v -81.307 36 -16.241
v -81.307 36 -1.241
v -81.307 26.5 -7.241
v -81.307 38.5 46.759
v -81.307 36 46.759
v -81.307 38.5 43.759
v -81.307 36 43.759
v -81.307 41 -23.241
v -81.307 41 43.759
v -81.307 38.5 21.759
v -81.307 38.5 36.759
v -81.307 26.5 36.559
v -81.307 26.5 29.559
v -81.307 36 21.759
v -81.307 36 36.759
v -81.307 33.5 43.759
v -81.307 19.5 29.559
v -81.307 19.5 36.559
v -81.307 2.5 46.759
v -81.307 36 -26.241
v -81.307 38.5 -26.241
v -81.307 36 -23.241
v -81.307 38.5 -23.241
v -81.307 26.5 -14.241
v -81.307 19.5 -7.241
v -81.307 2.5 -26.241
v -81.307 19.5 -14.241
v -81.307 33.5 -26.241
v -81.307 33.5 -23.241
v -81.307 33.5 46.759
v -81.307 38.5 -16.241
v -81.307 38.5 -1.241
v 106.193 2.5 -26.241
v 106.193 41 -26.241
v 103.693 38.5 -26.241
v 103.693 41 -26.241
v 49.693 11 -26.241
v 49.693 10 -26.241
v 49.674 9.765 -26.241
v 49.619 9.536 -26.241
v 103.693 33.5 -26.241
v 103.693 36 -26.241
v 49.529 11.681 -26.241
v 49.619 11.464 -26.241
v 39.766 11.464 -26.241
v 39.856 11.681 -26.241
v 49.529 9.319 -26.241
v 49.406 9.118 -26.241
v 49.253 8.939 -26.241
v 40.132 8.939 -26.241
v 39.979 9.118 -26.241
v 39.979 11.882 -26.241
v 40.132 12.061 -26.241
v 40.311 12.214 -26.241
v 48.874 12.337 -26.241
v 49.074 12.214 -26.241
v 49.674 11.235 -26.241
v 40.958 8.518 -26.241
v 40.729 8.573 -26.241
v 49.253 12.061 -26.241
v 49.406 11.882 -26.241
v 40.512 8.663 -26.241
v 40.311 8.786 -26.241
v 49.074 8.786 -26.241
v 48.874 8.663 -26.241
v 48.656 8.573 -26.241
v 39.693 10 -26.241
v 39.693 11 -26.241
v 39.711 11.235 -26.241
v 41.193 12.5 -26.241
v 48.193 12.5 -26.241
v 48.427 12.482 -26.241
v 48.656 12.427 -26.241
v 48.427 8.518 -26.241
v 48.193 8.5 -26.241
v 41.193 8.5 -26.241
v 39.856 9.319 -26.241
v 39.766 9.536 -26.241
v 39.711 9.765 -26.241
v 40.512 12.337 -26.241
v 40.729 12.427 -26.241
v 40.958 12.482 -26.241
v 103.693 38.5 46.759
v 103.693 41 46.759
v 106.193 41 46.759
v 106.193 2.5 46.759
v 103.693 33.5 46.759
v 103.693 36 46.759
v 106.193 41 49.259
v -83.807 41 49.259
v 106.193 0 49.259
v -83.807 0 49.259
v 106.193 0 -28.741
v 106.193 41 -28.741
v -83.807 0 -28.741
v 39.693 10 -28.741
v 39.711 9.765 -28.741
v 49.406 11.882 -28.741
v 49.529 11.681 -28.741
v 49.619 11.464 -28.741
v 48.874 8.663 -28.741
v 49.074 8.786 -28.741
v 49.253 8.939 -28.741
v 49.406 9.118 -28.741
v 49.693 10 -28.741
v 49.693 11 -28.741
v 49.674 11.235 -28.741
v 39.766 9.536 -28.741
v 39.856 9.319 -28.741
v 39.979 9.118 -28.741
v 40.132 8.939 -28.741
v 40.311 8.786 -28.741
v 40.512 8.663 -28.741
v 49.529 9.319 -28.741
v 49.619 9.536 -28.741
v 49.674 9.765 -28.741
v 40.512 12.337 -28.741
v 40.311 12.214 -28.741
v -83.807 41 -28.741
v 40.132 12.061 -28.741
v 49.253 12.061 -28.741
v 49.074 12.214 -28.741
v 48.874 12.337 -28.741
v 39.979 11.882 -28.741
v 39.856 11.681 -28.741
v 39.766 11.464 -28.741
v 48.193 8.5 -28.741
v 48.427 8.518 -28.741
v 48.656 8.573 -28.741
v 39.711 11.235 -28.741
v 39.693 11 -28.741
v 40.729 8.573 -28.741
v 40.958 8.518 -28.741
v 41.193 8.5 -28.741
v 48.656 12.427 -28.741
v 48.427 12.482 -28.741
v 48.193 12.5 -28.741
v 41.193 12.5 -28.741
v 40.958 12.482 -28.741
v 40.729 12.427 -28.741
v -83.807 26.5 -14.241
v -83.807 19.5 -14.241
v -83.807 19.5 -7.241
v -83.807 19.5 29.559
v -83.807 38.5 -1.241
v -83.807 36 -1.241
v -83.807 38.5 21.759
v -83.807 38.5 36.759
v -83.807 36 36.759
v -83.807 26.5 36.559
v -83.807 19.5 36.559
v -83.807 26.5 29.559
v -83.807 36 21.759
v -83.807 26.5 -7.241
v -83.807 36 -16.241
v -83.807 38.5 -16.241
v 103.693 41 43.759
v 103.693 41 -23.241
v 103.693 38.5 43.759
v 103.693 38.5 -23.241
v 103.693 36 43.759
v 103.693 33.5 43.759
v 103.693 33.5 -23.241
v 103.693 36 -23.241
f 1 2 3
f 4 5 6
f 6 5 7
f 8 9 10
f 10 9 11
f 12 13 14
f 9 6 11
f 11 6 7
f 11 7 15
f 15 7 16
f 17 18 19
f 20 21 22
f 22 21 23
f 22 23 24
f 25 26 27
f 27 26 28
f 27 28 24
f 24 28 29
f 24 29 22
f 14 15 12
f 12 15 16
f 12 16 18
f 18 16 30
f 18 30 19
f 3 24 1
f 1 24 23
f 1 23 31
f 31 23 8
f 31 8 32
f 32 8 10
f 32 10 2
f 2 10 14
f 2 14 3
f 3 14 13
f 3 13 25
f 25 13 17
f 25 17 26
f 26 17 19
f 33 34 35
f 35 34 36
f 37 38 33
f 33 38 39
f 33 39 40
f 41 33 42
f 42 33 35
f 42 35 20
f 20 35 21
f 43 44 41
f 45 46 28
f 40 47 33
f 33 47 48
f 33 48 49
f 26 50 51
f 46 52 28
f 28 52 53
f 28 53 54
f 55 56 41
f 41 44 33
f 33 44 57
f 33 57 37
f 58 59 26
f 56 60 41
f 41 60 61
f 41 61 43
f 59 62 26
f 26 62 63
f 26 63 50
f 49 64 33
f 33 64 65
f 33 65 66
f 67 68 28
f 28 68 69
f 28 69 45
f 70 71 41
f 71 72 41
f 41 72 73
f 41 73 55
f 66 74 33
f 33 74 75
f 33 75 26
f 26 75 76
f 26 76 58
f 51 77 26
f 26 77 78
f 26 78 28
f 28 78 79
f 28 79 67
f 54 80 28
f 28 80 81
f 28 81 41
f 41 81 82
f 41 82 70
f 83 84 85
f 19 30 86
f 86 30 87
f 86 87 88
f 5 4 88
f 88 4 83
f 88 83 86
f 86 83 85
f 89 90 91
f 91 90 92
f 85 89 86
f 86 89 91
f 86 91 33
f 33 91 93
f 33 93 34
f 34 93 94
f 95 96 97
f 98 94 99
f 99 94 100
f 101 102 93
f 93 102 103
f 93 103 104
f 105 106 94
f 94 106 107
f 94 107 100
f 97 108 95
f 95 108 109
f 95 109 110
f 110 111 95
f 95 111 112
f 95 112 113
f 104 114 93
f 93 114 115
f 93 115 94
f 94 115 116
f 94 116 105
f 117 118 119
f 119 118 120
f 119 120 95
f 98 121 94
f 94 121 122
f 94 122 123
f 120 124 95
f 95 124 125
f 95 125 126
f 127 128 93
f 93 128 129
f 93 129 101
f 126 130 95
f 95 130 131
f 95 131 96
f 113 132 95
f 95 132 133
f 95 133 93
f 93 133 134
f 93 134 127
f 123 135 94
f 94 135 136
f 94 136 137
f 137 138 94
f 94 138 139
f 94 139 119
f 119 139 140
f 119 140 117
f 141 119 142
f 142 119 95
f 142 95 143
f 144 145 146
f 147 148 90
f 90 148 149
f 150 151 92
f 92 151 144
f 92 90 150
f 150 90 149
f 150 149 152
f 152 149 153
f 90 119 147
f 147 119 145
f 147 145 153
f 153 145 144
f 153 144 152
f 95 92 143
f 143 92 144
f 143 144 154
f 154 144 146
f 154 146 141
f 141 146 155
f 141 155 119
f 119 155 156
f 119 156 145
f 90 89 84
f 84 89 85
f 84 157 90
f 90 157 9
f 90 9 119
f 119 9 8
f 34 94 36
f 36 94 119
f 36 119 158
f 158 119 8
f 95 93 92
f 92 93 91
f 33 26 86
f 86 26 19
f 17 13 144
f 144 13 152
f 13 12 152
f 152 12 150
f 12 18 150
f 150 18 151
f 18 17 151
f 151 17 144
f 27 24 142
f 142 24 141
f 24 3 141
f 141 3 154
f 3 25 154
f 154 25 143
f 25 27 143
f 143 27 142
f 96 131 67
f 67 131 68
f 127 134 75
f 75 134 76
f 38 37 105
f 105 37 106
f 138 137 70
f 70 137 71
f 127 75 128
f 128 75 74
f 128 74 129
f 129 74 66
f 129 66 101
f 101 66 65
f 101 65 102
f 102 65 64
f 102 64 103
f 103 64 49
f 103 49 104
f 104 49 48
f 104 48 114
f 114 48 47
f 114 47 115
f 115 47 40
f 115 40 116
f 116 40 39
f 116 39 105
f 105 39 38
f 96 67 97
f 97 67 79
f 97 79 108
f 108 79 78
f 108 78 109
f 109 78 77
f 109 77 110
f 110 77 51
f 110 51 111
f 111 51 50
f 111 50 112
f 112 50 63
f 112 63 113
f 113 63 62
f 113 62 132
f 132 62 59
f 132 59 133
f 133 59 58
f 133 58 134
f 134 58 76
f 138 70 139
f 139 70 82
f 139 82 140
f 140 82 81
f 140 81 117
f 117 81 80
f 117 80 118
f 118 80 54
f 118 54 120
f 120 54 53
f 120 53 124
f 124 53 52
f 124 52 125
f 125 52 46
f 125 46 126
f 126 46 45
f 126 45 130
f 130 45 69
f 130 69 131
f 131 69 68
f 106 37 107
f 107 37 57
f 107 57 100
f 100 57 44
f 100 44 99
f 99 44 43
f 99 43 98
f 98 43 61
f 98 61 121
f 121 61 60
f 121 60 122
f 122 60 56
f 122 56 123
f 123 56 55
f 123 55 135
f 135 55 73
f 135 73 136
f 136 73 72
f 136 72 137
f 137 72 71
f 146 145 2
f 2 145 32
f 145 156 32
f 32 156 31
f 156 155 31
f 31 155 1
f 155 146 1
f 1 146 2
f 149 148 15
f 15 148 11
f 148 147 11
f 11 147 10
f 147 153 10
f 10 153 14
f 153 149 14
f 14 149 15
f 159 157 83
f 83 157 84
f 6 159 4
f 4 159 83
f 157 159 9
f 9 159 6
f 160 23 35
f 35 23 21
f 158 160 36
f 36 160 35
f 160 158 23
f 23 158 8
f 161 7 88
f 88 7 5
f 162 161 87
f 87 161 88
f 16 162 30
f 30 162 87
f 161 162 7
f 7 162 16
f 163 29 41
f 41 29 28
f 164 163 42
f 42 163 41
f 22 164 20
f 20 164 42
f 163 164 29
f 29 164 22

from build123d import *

# Parameters (mm, degrees)
SKETCH_1_W          = 190
SKETCH_1_H          = 78
EXTRUDE_1_DEPTH     = 41
SKETCH_2_W          = 185
SKETCH_2_H          = 73
CUT_EXTRUDE_1_DEPTH = 38.5
SKETCH_3_W          = 2.5
SKETCH_3_H          = 73
CUT_EXTRUDE_2_DEPTH = 38.5
SKETCH_4_W          = 7
SKETCH_4_H          = 7
CUT_EXTRUDE_4_DEPTH = 2.5
SKETCH_5_W          = 10
SKETCH_5_H          = 4
CUT_EXTRUDE_5_DEPTH = 2.5
FILLET_1_R          = 1.5
SKETCH_9_W          = 15
SKETCH_9_H          = 2.5
CUT_EXTRUDE_8_DEPTH = 2.5
SKETCH_10_W         = 185
SKETCH_10_H         = 2.5
EXTRUDE_2_DEPTH     = 3
SKETCH_11_W         = 185
SKETCH_11_H         = 2.5
EXTRUDE_3_DEPTH     = 3
SKETCH_12_W         = 185
SKETCH_12_H         = 2.5
EXTRUDE_4_DEPTH     = 3
SKETCH_13_W         = 185
SKETCH_13_H         = 2.5
EXTRUDE_5_DEPTH     = 3


with BuildPart() as part:
    # 草图1 → 凸台-拉伸1 (new body)
    with BuildSketch(Plane(origin=(0, 0, 0), x_dir=(1, 0, 0), z_dir=(0, 1, 0))):
        with Locations((11.192771084, -10.259036145)):
            Rectangle(SKETCH_1_W, SKETCH_1_H)
    extrude(amount=EXTRUDE_1_DEPTH)

    # 草图2 → 切除-拉伸1 (cut)
    with BuildSketch(Plane(origin=(0, 41, 0), x_dir=(1, 0, 0), z_dir=(0, 1, 0))):
        with Locations((11.192771084, -10.259036145)):
            Rectangle(SKETCH_2_W, SKETCH_2_H)
    extrude(amount=-CUT_EXTRUDE_1_DEPTH, mode=Mode.SUBTRACT)

    # 草图3 → 切除-拉伸2 (cut)
    with BuildSketch(Plane(origin=(0, 41, 0), x_dir=(1, 0, 0), z_dir=(0, 1, 0))):
        with Locations((104.942771084, -10.259036145)):
            Rectangle(SKETCH_3_W, SKETCH_3_H)
    extrude(amount=-CUT_EXTRUDE_2_DEPTH, mode=Mode.SUBTRACT)

    # 草图4 → 切除-拉伸4 (cut)
    with BuildSketch(Plane.ZY.offset(83.807228916)):
        with Locations((-10.740963855, 23)):
            Rectangle(SKETCH_4_W, SKETCH_4_H)
        with Locations((33.059036145, 23)):
            Rectangle(SKETCH_4_W, SKETCH_4_H)
    extrude(amount=-CUT_EXTRUDE_4_DEPTH, mode=Mode.SUBTRACT)

    # 草图5 → 切除-拉伸5 (cut)
    with BuildSketch(Plane(origin=(0, 0, -28.740963855), x_dir=(-1, 0, 0), z_dir=(0, 0, -1))):
        with Locations((-44.692771084, 10.5)):
            Rectangle(SKETCH_5_W, SKETCH_5_H)
    extrude(amount=-CUT_EXTRUDE_5_DEPTH, mode=Mode.SUBTRACT)

    # 圆角1
    fillet_1_edges = [part.edges().sort_by_distance(p)[0] for p in [
        (39.692771084, 12.5, -27.490963855),
        (39.692771084, 8.5, -27.490963855),
        (49.692771084, 8.5, -27.490963855),
        (49.692771084, 12.5, -27.490963855),
    ]]
    fillet(fillet_1_edges, radius=FILLET_1_R)

    # 草图9 → 切除-拉伸8 (cut)
    with BuildSketch(Plane(origin=(-81.307228916, 0, 0), x_dir=(0, 0, -1), z_dir=(1, 0, 0))):
        with Locations((-29.259036145, 37.25)):
            Rectangle(SKETCH_9_W, SKETCH_9_H)
        with Locations((8.740963855, 37.25)):
            Rectangle(SKETCH_9_W, SKETCH_9_H)
    extrude(amount=-CUT_EXTRUDE_8_DEPTH, mode=Mode.SUBTRACT)

    # 草图10 → 凸台-拉伸2 (add)
    with BuildSketch(Plane(origin=(0, 0, 46.759036145), x_dir=(-1, 0, 0), z_dir=(0, 0, -1))):
        with Locations((-11.192771084, 39.75)):
            Rectangle(SKETCH_10_W, SKETCH_10_H)
    extrude(amount=EXTRUDE_2_DEPTH)

    # 草图11 → 凸台-拉伸3 (add)
    with BuildSketch(Plane.XY.offset(-26.240963855)):
        with Locations((11.192771084, 39.75)):
            Rectangle(SKETCH_11_W, SKETCH_11_H)
    extrude(amount=EXTRUDE_3_DEPTH)

    # 草图12 → 凸台-拉伸4 (add)
    with BuildSketch(Plane(origin=(0, 0, 46.759036145), x_dir=(-1, 0, 0), z_dir=(0, 0, -1))):
        with Locations((-11.192771084, 34.75)):
            Rectangle(SKETCH_12_W, SKETCH_12_H)
    extrude(amount=EXTRUDE_4_DEPTH)

    # 草图13 → 凸台-拉伸5 (add)
    with BuildSketch(Plane.XY.offset(-26.240963855)):
        with Locations((11.192771084, 34.75)):
            Rectangle(SKETCH_13_W, SKETCH_13_H)
    extrude(amount=EXTRUDE_5_DEPTH)


solid = part.part
